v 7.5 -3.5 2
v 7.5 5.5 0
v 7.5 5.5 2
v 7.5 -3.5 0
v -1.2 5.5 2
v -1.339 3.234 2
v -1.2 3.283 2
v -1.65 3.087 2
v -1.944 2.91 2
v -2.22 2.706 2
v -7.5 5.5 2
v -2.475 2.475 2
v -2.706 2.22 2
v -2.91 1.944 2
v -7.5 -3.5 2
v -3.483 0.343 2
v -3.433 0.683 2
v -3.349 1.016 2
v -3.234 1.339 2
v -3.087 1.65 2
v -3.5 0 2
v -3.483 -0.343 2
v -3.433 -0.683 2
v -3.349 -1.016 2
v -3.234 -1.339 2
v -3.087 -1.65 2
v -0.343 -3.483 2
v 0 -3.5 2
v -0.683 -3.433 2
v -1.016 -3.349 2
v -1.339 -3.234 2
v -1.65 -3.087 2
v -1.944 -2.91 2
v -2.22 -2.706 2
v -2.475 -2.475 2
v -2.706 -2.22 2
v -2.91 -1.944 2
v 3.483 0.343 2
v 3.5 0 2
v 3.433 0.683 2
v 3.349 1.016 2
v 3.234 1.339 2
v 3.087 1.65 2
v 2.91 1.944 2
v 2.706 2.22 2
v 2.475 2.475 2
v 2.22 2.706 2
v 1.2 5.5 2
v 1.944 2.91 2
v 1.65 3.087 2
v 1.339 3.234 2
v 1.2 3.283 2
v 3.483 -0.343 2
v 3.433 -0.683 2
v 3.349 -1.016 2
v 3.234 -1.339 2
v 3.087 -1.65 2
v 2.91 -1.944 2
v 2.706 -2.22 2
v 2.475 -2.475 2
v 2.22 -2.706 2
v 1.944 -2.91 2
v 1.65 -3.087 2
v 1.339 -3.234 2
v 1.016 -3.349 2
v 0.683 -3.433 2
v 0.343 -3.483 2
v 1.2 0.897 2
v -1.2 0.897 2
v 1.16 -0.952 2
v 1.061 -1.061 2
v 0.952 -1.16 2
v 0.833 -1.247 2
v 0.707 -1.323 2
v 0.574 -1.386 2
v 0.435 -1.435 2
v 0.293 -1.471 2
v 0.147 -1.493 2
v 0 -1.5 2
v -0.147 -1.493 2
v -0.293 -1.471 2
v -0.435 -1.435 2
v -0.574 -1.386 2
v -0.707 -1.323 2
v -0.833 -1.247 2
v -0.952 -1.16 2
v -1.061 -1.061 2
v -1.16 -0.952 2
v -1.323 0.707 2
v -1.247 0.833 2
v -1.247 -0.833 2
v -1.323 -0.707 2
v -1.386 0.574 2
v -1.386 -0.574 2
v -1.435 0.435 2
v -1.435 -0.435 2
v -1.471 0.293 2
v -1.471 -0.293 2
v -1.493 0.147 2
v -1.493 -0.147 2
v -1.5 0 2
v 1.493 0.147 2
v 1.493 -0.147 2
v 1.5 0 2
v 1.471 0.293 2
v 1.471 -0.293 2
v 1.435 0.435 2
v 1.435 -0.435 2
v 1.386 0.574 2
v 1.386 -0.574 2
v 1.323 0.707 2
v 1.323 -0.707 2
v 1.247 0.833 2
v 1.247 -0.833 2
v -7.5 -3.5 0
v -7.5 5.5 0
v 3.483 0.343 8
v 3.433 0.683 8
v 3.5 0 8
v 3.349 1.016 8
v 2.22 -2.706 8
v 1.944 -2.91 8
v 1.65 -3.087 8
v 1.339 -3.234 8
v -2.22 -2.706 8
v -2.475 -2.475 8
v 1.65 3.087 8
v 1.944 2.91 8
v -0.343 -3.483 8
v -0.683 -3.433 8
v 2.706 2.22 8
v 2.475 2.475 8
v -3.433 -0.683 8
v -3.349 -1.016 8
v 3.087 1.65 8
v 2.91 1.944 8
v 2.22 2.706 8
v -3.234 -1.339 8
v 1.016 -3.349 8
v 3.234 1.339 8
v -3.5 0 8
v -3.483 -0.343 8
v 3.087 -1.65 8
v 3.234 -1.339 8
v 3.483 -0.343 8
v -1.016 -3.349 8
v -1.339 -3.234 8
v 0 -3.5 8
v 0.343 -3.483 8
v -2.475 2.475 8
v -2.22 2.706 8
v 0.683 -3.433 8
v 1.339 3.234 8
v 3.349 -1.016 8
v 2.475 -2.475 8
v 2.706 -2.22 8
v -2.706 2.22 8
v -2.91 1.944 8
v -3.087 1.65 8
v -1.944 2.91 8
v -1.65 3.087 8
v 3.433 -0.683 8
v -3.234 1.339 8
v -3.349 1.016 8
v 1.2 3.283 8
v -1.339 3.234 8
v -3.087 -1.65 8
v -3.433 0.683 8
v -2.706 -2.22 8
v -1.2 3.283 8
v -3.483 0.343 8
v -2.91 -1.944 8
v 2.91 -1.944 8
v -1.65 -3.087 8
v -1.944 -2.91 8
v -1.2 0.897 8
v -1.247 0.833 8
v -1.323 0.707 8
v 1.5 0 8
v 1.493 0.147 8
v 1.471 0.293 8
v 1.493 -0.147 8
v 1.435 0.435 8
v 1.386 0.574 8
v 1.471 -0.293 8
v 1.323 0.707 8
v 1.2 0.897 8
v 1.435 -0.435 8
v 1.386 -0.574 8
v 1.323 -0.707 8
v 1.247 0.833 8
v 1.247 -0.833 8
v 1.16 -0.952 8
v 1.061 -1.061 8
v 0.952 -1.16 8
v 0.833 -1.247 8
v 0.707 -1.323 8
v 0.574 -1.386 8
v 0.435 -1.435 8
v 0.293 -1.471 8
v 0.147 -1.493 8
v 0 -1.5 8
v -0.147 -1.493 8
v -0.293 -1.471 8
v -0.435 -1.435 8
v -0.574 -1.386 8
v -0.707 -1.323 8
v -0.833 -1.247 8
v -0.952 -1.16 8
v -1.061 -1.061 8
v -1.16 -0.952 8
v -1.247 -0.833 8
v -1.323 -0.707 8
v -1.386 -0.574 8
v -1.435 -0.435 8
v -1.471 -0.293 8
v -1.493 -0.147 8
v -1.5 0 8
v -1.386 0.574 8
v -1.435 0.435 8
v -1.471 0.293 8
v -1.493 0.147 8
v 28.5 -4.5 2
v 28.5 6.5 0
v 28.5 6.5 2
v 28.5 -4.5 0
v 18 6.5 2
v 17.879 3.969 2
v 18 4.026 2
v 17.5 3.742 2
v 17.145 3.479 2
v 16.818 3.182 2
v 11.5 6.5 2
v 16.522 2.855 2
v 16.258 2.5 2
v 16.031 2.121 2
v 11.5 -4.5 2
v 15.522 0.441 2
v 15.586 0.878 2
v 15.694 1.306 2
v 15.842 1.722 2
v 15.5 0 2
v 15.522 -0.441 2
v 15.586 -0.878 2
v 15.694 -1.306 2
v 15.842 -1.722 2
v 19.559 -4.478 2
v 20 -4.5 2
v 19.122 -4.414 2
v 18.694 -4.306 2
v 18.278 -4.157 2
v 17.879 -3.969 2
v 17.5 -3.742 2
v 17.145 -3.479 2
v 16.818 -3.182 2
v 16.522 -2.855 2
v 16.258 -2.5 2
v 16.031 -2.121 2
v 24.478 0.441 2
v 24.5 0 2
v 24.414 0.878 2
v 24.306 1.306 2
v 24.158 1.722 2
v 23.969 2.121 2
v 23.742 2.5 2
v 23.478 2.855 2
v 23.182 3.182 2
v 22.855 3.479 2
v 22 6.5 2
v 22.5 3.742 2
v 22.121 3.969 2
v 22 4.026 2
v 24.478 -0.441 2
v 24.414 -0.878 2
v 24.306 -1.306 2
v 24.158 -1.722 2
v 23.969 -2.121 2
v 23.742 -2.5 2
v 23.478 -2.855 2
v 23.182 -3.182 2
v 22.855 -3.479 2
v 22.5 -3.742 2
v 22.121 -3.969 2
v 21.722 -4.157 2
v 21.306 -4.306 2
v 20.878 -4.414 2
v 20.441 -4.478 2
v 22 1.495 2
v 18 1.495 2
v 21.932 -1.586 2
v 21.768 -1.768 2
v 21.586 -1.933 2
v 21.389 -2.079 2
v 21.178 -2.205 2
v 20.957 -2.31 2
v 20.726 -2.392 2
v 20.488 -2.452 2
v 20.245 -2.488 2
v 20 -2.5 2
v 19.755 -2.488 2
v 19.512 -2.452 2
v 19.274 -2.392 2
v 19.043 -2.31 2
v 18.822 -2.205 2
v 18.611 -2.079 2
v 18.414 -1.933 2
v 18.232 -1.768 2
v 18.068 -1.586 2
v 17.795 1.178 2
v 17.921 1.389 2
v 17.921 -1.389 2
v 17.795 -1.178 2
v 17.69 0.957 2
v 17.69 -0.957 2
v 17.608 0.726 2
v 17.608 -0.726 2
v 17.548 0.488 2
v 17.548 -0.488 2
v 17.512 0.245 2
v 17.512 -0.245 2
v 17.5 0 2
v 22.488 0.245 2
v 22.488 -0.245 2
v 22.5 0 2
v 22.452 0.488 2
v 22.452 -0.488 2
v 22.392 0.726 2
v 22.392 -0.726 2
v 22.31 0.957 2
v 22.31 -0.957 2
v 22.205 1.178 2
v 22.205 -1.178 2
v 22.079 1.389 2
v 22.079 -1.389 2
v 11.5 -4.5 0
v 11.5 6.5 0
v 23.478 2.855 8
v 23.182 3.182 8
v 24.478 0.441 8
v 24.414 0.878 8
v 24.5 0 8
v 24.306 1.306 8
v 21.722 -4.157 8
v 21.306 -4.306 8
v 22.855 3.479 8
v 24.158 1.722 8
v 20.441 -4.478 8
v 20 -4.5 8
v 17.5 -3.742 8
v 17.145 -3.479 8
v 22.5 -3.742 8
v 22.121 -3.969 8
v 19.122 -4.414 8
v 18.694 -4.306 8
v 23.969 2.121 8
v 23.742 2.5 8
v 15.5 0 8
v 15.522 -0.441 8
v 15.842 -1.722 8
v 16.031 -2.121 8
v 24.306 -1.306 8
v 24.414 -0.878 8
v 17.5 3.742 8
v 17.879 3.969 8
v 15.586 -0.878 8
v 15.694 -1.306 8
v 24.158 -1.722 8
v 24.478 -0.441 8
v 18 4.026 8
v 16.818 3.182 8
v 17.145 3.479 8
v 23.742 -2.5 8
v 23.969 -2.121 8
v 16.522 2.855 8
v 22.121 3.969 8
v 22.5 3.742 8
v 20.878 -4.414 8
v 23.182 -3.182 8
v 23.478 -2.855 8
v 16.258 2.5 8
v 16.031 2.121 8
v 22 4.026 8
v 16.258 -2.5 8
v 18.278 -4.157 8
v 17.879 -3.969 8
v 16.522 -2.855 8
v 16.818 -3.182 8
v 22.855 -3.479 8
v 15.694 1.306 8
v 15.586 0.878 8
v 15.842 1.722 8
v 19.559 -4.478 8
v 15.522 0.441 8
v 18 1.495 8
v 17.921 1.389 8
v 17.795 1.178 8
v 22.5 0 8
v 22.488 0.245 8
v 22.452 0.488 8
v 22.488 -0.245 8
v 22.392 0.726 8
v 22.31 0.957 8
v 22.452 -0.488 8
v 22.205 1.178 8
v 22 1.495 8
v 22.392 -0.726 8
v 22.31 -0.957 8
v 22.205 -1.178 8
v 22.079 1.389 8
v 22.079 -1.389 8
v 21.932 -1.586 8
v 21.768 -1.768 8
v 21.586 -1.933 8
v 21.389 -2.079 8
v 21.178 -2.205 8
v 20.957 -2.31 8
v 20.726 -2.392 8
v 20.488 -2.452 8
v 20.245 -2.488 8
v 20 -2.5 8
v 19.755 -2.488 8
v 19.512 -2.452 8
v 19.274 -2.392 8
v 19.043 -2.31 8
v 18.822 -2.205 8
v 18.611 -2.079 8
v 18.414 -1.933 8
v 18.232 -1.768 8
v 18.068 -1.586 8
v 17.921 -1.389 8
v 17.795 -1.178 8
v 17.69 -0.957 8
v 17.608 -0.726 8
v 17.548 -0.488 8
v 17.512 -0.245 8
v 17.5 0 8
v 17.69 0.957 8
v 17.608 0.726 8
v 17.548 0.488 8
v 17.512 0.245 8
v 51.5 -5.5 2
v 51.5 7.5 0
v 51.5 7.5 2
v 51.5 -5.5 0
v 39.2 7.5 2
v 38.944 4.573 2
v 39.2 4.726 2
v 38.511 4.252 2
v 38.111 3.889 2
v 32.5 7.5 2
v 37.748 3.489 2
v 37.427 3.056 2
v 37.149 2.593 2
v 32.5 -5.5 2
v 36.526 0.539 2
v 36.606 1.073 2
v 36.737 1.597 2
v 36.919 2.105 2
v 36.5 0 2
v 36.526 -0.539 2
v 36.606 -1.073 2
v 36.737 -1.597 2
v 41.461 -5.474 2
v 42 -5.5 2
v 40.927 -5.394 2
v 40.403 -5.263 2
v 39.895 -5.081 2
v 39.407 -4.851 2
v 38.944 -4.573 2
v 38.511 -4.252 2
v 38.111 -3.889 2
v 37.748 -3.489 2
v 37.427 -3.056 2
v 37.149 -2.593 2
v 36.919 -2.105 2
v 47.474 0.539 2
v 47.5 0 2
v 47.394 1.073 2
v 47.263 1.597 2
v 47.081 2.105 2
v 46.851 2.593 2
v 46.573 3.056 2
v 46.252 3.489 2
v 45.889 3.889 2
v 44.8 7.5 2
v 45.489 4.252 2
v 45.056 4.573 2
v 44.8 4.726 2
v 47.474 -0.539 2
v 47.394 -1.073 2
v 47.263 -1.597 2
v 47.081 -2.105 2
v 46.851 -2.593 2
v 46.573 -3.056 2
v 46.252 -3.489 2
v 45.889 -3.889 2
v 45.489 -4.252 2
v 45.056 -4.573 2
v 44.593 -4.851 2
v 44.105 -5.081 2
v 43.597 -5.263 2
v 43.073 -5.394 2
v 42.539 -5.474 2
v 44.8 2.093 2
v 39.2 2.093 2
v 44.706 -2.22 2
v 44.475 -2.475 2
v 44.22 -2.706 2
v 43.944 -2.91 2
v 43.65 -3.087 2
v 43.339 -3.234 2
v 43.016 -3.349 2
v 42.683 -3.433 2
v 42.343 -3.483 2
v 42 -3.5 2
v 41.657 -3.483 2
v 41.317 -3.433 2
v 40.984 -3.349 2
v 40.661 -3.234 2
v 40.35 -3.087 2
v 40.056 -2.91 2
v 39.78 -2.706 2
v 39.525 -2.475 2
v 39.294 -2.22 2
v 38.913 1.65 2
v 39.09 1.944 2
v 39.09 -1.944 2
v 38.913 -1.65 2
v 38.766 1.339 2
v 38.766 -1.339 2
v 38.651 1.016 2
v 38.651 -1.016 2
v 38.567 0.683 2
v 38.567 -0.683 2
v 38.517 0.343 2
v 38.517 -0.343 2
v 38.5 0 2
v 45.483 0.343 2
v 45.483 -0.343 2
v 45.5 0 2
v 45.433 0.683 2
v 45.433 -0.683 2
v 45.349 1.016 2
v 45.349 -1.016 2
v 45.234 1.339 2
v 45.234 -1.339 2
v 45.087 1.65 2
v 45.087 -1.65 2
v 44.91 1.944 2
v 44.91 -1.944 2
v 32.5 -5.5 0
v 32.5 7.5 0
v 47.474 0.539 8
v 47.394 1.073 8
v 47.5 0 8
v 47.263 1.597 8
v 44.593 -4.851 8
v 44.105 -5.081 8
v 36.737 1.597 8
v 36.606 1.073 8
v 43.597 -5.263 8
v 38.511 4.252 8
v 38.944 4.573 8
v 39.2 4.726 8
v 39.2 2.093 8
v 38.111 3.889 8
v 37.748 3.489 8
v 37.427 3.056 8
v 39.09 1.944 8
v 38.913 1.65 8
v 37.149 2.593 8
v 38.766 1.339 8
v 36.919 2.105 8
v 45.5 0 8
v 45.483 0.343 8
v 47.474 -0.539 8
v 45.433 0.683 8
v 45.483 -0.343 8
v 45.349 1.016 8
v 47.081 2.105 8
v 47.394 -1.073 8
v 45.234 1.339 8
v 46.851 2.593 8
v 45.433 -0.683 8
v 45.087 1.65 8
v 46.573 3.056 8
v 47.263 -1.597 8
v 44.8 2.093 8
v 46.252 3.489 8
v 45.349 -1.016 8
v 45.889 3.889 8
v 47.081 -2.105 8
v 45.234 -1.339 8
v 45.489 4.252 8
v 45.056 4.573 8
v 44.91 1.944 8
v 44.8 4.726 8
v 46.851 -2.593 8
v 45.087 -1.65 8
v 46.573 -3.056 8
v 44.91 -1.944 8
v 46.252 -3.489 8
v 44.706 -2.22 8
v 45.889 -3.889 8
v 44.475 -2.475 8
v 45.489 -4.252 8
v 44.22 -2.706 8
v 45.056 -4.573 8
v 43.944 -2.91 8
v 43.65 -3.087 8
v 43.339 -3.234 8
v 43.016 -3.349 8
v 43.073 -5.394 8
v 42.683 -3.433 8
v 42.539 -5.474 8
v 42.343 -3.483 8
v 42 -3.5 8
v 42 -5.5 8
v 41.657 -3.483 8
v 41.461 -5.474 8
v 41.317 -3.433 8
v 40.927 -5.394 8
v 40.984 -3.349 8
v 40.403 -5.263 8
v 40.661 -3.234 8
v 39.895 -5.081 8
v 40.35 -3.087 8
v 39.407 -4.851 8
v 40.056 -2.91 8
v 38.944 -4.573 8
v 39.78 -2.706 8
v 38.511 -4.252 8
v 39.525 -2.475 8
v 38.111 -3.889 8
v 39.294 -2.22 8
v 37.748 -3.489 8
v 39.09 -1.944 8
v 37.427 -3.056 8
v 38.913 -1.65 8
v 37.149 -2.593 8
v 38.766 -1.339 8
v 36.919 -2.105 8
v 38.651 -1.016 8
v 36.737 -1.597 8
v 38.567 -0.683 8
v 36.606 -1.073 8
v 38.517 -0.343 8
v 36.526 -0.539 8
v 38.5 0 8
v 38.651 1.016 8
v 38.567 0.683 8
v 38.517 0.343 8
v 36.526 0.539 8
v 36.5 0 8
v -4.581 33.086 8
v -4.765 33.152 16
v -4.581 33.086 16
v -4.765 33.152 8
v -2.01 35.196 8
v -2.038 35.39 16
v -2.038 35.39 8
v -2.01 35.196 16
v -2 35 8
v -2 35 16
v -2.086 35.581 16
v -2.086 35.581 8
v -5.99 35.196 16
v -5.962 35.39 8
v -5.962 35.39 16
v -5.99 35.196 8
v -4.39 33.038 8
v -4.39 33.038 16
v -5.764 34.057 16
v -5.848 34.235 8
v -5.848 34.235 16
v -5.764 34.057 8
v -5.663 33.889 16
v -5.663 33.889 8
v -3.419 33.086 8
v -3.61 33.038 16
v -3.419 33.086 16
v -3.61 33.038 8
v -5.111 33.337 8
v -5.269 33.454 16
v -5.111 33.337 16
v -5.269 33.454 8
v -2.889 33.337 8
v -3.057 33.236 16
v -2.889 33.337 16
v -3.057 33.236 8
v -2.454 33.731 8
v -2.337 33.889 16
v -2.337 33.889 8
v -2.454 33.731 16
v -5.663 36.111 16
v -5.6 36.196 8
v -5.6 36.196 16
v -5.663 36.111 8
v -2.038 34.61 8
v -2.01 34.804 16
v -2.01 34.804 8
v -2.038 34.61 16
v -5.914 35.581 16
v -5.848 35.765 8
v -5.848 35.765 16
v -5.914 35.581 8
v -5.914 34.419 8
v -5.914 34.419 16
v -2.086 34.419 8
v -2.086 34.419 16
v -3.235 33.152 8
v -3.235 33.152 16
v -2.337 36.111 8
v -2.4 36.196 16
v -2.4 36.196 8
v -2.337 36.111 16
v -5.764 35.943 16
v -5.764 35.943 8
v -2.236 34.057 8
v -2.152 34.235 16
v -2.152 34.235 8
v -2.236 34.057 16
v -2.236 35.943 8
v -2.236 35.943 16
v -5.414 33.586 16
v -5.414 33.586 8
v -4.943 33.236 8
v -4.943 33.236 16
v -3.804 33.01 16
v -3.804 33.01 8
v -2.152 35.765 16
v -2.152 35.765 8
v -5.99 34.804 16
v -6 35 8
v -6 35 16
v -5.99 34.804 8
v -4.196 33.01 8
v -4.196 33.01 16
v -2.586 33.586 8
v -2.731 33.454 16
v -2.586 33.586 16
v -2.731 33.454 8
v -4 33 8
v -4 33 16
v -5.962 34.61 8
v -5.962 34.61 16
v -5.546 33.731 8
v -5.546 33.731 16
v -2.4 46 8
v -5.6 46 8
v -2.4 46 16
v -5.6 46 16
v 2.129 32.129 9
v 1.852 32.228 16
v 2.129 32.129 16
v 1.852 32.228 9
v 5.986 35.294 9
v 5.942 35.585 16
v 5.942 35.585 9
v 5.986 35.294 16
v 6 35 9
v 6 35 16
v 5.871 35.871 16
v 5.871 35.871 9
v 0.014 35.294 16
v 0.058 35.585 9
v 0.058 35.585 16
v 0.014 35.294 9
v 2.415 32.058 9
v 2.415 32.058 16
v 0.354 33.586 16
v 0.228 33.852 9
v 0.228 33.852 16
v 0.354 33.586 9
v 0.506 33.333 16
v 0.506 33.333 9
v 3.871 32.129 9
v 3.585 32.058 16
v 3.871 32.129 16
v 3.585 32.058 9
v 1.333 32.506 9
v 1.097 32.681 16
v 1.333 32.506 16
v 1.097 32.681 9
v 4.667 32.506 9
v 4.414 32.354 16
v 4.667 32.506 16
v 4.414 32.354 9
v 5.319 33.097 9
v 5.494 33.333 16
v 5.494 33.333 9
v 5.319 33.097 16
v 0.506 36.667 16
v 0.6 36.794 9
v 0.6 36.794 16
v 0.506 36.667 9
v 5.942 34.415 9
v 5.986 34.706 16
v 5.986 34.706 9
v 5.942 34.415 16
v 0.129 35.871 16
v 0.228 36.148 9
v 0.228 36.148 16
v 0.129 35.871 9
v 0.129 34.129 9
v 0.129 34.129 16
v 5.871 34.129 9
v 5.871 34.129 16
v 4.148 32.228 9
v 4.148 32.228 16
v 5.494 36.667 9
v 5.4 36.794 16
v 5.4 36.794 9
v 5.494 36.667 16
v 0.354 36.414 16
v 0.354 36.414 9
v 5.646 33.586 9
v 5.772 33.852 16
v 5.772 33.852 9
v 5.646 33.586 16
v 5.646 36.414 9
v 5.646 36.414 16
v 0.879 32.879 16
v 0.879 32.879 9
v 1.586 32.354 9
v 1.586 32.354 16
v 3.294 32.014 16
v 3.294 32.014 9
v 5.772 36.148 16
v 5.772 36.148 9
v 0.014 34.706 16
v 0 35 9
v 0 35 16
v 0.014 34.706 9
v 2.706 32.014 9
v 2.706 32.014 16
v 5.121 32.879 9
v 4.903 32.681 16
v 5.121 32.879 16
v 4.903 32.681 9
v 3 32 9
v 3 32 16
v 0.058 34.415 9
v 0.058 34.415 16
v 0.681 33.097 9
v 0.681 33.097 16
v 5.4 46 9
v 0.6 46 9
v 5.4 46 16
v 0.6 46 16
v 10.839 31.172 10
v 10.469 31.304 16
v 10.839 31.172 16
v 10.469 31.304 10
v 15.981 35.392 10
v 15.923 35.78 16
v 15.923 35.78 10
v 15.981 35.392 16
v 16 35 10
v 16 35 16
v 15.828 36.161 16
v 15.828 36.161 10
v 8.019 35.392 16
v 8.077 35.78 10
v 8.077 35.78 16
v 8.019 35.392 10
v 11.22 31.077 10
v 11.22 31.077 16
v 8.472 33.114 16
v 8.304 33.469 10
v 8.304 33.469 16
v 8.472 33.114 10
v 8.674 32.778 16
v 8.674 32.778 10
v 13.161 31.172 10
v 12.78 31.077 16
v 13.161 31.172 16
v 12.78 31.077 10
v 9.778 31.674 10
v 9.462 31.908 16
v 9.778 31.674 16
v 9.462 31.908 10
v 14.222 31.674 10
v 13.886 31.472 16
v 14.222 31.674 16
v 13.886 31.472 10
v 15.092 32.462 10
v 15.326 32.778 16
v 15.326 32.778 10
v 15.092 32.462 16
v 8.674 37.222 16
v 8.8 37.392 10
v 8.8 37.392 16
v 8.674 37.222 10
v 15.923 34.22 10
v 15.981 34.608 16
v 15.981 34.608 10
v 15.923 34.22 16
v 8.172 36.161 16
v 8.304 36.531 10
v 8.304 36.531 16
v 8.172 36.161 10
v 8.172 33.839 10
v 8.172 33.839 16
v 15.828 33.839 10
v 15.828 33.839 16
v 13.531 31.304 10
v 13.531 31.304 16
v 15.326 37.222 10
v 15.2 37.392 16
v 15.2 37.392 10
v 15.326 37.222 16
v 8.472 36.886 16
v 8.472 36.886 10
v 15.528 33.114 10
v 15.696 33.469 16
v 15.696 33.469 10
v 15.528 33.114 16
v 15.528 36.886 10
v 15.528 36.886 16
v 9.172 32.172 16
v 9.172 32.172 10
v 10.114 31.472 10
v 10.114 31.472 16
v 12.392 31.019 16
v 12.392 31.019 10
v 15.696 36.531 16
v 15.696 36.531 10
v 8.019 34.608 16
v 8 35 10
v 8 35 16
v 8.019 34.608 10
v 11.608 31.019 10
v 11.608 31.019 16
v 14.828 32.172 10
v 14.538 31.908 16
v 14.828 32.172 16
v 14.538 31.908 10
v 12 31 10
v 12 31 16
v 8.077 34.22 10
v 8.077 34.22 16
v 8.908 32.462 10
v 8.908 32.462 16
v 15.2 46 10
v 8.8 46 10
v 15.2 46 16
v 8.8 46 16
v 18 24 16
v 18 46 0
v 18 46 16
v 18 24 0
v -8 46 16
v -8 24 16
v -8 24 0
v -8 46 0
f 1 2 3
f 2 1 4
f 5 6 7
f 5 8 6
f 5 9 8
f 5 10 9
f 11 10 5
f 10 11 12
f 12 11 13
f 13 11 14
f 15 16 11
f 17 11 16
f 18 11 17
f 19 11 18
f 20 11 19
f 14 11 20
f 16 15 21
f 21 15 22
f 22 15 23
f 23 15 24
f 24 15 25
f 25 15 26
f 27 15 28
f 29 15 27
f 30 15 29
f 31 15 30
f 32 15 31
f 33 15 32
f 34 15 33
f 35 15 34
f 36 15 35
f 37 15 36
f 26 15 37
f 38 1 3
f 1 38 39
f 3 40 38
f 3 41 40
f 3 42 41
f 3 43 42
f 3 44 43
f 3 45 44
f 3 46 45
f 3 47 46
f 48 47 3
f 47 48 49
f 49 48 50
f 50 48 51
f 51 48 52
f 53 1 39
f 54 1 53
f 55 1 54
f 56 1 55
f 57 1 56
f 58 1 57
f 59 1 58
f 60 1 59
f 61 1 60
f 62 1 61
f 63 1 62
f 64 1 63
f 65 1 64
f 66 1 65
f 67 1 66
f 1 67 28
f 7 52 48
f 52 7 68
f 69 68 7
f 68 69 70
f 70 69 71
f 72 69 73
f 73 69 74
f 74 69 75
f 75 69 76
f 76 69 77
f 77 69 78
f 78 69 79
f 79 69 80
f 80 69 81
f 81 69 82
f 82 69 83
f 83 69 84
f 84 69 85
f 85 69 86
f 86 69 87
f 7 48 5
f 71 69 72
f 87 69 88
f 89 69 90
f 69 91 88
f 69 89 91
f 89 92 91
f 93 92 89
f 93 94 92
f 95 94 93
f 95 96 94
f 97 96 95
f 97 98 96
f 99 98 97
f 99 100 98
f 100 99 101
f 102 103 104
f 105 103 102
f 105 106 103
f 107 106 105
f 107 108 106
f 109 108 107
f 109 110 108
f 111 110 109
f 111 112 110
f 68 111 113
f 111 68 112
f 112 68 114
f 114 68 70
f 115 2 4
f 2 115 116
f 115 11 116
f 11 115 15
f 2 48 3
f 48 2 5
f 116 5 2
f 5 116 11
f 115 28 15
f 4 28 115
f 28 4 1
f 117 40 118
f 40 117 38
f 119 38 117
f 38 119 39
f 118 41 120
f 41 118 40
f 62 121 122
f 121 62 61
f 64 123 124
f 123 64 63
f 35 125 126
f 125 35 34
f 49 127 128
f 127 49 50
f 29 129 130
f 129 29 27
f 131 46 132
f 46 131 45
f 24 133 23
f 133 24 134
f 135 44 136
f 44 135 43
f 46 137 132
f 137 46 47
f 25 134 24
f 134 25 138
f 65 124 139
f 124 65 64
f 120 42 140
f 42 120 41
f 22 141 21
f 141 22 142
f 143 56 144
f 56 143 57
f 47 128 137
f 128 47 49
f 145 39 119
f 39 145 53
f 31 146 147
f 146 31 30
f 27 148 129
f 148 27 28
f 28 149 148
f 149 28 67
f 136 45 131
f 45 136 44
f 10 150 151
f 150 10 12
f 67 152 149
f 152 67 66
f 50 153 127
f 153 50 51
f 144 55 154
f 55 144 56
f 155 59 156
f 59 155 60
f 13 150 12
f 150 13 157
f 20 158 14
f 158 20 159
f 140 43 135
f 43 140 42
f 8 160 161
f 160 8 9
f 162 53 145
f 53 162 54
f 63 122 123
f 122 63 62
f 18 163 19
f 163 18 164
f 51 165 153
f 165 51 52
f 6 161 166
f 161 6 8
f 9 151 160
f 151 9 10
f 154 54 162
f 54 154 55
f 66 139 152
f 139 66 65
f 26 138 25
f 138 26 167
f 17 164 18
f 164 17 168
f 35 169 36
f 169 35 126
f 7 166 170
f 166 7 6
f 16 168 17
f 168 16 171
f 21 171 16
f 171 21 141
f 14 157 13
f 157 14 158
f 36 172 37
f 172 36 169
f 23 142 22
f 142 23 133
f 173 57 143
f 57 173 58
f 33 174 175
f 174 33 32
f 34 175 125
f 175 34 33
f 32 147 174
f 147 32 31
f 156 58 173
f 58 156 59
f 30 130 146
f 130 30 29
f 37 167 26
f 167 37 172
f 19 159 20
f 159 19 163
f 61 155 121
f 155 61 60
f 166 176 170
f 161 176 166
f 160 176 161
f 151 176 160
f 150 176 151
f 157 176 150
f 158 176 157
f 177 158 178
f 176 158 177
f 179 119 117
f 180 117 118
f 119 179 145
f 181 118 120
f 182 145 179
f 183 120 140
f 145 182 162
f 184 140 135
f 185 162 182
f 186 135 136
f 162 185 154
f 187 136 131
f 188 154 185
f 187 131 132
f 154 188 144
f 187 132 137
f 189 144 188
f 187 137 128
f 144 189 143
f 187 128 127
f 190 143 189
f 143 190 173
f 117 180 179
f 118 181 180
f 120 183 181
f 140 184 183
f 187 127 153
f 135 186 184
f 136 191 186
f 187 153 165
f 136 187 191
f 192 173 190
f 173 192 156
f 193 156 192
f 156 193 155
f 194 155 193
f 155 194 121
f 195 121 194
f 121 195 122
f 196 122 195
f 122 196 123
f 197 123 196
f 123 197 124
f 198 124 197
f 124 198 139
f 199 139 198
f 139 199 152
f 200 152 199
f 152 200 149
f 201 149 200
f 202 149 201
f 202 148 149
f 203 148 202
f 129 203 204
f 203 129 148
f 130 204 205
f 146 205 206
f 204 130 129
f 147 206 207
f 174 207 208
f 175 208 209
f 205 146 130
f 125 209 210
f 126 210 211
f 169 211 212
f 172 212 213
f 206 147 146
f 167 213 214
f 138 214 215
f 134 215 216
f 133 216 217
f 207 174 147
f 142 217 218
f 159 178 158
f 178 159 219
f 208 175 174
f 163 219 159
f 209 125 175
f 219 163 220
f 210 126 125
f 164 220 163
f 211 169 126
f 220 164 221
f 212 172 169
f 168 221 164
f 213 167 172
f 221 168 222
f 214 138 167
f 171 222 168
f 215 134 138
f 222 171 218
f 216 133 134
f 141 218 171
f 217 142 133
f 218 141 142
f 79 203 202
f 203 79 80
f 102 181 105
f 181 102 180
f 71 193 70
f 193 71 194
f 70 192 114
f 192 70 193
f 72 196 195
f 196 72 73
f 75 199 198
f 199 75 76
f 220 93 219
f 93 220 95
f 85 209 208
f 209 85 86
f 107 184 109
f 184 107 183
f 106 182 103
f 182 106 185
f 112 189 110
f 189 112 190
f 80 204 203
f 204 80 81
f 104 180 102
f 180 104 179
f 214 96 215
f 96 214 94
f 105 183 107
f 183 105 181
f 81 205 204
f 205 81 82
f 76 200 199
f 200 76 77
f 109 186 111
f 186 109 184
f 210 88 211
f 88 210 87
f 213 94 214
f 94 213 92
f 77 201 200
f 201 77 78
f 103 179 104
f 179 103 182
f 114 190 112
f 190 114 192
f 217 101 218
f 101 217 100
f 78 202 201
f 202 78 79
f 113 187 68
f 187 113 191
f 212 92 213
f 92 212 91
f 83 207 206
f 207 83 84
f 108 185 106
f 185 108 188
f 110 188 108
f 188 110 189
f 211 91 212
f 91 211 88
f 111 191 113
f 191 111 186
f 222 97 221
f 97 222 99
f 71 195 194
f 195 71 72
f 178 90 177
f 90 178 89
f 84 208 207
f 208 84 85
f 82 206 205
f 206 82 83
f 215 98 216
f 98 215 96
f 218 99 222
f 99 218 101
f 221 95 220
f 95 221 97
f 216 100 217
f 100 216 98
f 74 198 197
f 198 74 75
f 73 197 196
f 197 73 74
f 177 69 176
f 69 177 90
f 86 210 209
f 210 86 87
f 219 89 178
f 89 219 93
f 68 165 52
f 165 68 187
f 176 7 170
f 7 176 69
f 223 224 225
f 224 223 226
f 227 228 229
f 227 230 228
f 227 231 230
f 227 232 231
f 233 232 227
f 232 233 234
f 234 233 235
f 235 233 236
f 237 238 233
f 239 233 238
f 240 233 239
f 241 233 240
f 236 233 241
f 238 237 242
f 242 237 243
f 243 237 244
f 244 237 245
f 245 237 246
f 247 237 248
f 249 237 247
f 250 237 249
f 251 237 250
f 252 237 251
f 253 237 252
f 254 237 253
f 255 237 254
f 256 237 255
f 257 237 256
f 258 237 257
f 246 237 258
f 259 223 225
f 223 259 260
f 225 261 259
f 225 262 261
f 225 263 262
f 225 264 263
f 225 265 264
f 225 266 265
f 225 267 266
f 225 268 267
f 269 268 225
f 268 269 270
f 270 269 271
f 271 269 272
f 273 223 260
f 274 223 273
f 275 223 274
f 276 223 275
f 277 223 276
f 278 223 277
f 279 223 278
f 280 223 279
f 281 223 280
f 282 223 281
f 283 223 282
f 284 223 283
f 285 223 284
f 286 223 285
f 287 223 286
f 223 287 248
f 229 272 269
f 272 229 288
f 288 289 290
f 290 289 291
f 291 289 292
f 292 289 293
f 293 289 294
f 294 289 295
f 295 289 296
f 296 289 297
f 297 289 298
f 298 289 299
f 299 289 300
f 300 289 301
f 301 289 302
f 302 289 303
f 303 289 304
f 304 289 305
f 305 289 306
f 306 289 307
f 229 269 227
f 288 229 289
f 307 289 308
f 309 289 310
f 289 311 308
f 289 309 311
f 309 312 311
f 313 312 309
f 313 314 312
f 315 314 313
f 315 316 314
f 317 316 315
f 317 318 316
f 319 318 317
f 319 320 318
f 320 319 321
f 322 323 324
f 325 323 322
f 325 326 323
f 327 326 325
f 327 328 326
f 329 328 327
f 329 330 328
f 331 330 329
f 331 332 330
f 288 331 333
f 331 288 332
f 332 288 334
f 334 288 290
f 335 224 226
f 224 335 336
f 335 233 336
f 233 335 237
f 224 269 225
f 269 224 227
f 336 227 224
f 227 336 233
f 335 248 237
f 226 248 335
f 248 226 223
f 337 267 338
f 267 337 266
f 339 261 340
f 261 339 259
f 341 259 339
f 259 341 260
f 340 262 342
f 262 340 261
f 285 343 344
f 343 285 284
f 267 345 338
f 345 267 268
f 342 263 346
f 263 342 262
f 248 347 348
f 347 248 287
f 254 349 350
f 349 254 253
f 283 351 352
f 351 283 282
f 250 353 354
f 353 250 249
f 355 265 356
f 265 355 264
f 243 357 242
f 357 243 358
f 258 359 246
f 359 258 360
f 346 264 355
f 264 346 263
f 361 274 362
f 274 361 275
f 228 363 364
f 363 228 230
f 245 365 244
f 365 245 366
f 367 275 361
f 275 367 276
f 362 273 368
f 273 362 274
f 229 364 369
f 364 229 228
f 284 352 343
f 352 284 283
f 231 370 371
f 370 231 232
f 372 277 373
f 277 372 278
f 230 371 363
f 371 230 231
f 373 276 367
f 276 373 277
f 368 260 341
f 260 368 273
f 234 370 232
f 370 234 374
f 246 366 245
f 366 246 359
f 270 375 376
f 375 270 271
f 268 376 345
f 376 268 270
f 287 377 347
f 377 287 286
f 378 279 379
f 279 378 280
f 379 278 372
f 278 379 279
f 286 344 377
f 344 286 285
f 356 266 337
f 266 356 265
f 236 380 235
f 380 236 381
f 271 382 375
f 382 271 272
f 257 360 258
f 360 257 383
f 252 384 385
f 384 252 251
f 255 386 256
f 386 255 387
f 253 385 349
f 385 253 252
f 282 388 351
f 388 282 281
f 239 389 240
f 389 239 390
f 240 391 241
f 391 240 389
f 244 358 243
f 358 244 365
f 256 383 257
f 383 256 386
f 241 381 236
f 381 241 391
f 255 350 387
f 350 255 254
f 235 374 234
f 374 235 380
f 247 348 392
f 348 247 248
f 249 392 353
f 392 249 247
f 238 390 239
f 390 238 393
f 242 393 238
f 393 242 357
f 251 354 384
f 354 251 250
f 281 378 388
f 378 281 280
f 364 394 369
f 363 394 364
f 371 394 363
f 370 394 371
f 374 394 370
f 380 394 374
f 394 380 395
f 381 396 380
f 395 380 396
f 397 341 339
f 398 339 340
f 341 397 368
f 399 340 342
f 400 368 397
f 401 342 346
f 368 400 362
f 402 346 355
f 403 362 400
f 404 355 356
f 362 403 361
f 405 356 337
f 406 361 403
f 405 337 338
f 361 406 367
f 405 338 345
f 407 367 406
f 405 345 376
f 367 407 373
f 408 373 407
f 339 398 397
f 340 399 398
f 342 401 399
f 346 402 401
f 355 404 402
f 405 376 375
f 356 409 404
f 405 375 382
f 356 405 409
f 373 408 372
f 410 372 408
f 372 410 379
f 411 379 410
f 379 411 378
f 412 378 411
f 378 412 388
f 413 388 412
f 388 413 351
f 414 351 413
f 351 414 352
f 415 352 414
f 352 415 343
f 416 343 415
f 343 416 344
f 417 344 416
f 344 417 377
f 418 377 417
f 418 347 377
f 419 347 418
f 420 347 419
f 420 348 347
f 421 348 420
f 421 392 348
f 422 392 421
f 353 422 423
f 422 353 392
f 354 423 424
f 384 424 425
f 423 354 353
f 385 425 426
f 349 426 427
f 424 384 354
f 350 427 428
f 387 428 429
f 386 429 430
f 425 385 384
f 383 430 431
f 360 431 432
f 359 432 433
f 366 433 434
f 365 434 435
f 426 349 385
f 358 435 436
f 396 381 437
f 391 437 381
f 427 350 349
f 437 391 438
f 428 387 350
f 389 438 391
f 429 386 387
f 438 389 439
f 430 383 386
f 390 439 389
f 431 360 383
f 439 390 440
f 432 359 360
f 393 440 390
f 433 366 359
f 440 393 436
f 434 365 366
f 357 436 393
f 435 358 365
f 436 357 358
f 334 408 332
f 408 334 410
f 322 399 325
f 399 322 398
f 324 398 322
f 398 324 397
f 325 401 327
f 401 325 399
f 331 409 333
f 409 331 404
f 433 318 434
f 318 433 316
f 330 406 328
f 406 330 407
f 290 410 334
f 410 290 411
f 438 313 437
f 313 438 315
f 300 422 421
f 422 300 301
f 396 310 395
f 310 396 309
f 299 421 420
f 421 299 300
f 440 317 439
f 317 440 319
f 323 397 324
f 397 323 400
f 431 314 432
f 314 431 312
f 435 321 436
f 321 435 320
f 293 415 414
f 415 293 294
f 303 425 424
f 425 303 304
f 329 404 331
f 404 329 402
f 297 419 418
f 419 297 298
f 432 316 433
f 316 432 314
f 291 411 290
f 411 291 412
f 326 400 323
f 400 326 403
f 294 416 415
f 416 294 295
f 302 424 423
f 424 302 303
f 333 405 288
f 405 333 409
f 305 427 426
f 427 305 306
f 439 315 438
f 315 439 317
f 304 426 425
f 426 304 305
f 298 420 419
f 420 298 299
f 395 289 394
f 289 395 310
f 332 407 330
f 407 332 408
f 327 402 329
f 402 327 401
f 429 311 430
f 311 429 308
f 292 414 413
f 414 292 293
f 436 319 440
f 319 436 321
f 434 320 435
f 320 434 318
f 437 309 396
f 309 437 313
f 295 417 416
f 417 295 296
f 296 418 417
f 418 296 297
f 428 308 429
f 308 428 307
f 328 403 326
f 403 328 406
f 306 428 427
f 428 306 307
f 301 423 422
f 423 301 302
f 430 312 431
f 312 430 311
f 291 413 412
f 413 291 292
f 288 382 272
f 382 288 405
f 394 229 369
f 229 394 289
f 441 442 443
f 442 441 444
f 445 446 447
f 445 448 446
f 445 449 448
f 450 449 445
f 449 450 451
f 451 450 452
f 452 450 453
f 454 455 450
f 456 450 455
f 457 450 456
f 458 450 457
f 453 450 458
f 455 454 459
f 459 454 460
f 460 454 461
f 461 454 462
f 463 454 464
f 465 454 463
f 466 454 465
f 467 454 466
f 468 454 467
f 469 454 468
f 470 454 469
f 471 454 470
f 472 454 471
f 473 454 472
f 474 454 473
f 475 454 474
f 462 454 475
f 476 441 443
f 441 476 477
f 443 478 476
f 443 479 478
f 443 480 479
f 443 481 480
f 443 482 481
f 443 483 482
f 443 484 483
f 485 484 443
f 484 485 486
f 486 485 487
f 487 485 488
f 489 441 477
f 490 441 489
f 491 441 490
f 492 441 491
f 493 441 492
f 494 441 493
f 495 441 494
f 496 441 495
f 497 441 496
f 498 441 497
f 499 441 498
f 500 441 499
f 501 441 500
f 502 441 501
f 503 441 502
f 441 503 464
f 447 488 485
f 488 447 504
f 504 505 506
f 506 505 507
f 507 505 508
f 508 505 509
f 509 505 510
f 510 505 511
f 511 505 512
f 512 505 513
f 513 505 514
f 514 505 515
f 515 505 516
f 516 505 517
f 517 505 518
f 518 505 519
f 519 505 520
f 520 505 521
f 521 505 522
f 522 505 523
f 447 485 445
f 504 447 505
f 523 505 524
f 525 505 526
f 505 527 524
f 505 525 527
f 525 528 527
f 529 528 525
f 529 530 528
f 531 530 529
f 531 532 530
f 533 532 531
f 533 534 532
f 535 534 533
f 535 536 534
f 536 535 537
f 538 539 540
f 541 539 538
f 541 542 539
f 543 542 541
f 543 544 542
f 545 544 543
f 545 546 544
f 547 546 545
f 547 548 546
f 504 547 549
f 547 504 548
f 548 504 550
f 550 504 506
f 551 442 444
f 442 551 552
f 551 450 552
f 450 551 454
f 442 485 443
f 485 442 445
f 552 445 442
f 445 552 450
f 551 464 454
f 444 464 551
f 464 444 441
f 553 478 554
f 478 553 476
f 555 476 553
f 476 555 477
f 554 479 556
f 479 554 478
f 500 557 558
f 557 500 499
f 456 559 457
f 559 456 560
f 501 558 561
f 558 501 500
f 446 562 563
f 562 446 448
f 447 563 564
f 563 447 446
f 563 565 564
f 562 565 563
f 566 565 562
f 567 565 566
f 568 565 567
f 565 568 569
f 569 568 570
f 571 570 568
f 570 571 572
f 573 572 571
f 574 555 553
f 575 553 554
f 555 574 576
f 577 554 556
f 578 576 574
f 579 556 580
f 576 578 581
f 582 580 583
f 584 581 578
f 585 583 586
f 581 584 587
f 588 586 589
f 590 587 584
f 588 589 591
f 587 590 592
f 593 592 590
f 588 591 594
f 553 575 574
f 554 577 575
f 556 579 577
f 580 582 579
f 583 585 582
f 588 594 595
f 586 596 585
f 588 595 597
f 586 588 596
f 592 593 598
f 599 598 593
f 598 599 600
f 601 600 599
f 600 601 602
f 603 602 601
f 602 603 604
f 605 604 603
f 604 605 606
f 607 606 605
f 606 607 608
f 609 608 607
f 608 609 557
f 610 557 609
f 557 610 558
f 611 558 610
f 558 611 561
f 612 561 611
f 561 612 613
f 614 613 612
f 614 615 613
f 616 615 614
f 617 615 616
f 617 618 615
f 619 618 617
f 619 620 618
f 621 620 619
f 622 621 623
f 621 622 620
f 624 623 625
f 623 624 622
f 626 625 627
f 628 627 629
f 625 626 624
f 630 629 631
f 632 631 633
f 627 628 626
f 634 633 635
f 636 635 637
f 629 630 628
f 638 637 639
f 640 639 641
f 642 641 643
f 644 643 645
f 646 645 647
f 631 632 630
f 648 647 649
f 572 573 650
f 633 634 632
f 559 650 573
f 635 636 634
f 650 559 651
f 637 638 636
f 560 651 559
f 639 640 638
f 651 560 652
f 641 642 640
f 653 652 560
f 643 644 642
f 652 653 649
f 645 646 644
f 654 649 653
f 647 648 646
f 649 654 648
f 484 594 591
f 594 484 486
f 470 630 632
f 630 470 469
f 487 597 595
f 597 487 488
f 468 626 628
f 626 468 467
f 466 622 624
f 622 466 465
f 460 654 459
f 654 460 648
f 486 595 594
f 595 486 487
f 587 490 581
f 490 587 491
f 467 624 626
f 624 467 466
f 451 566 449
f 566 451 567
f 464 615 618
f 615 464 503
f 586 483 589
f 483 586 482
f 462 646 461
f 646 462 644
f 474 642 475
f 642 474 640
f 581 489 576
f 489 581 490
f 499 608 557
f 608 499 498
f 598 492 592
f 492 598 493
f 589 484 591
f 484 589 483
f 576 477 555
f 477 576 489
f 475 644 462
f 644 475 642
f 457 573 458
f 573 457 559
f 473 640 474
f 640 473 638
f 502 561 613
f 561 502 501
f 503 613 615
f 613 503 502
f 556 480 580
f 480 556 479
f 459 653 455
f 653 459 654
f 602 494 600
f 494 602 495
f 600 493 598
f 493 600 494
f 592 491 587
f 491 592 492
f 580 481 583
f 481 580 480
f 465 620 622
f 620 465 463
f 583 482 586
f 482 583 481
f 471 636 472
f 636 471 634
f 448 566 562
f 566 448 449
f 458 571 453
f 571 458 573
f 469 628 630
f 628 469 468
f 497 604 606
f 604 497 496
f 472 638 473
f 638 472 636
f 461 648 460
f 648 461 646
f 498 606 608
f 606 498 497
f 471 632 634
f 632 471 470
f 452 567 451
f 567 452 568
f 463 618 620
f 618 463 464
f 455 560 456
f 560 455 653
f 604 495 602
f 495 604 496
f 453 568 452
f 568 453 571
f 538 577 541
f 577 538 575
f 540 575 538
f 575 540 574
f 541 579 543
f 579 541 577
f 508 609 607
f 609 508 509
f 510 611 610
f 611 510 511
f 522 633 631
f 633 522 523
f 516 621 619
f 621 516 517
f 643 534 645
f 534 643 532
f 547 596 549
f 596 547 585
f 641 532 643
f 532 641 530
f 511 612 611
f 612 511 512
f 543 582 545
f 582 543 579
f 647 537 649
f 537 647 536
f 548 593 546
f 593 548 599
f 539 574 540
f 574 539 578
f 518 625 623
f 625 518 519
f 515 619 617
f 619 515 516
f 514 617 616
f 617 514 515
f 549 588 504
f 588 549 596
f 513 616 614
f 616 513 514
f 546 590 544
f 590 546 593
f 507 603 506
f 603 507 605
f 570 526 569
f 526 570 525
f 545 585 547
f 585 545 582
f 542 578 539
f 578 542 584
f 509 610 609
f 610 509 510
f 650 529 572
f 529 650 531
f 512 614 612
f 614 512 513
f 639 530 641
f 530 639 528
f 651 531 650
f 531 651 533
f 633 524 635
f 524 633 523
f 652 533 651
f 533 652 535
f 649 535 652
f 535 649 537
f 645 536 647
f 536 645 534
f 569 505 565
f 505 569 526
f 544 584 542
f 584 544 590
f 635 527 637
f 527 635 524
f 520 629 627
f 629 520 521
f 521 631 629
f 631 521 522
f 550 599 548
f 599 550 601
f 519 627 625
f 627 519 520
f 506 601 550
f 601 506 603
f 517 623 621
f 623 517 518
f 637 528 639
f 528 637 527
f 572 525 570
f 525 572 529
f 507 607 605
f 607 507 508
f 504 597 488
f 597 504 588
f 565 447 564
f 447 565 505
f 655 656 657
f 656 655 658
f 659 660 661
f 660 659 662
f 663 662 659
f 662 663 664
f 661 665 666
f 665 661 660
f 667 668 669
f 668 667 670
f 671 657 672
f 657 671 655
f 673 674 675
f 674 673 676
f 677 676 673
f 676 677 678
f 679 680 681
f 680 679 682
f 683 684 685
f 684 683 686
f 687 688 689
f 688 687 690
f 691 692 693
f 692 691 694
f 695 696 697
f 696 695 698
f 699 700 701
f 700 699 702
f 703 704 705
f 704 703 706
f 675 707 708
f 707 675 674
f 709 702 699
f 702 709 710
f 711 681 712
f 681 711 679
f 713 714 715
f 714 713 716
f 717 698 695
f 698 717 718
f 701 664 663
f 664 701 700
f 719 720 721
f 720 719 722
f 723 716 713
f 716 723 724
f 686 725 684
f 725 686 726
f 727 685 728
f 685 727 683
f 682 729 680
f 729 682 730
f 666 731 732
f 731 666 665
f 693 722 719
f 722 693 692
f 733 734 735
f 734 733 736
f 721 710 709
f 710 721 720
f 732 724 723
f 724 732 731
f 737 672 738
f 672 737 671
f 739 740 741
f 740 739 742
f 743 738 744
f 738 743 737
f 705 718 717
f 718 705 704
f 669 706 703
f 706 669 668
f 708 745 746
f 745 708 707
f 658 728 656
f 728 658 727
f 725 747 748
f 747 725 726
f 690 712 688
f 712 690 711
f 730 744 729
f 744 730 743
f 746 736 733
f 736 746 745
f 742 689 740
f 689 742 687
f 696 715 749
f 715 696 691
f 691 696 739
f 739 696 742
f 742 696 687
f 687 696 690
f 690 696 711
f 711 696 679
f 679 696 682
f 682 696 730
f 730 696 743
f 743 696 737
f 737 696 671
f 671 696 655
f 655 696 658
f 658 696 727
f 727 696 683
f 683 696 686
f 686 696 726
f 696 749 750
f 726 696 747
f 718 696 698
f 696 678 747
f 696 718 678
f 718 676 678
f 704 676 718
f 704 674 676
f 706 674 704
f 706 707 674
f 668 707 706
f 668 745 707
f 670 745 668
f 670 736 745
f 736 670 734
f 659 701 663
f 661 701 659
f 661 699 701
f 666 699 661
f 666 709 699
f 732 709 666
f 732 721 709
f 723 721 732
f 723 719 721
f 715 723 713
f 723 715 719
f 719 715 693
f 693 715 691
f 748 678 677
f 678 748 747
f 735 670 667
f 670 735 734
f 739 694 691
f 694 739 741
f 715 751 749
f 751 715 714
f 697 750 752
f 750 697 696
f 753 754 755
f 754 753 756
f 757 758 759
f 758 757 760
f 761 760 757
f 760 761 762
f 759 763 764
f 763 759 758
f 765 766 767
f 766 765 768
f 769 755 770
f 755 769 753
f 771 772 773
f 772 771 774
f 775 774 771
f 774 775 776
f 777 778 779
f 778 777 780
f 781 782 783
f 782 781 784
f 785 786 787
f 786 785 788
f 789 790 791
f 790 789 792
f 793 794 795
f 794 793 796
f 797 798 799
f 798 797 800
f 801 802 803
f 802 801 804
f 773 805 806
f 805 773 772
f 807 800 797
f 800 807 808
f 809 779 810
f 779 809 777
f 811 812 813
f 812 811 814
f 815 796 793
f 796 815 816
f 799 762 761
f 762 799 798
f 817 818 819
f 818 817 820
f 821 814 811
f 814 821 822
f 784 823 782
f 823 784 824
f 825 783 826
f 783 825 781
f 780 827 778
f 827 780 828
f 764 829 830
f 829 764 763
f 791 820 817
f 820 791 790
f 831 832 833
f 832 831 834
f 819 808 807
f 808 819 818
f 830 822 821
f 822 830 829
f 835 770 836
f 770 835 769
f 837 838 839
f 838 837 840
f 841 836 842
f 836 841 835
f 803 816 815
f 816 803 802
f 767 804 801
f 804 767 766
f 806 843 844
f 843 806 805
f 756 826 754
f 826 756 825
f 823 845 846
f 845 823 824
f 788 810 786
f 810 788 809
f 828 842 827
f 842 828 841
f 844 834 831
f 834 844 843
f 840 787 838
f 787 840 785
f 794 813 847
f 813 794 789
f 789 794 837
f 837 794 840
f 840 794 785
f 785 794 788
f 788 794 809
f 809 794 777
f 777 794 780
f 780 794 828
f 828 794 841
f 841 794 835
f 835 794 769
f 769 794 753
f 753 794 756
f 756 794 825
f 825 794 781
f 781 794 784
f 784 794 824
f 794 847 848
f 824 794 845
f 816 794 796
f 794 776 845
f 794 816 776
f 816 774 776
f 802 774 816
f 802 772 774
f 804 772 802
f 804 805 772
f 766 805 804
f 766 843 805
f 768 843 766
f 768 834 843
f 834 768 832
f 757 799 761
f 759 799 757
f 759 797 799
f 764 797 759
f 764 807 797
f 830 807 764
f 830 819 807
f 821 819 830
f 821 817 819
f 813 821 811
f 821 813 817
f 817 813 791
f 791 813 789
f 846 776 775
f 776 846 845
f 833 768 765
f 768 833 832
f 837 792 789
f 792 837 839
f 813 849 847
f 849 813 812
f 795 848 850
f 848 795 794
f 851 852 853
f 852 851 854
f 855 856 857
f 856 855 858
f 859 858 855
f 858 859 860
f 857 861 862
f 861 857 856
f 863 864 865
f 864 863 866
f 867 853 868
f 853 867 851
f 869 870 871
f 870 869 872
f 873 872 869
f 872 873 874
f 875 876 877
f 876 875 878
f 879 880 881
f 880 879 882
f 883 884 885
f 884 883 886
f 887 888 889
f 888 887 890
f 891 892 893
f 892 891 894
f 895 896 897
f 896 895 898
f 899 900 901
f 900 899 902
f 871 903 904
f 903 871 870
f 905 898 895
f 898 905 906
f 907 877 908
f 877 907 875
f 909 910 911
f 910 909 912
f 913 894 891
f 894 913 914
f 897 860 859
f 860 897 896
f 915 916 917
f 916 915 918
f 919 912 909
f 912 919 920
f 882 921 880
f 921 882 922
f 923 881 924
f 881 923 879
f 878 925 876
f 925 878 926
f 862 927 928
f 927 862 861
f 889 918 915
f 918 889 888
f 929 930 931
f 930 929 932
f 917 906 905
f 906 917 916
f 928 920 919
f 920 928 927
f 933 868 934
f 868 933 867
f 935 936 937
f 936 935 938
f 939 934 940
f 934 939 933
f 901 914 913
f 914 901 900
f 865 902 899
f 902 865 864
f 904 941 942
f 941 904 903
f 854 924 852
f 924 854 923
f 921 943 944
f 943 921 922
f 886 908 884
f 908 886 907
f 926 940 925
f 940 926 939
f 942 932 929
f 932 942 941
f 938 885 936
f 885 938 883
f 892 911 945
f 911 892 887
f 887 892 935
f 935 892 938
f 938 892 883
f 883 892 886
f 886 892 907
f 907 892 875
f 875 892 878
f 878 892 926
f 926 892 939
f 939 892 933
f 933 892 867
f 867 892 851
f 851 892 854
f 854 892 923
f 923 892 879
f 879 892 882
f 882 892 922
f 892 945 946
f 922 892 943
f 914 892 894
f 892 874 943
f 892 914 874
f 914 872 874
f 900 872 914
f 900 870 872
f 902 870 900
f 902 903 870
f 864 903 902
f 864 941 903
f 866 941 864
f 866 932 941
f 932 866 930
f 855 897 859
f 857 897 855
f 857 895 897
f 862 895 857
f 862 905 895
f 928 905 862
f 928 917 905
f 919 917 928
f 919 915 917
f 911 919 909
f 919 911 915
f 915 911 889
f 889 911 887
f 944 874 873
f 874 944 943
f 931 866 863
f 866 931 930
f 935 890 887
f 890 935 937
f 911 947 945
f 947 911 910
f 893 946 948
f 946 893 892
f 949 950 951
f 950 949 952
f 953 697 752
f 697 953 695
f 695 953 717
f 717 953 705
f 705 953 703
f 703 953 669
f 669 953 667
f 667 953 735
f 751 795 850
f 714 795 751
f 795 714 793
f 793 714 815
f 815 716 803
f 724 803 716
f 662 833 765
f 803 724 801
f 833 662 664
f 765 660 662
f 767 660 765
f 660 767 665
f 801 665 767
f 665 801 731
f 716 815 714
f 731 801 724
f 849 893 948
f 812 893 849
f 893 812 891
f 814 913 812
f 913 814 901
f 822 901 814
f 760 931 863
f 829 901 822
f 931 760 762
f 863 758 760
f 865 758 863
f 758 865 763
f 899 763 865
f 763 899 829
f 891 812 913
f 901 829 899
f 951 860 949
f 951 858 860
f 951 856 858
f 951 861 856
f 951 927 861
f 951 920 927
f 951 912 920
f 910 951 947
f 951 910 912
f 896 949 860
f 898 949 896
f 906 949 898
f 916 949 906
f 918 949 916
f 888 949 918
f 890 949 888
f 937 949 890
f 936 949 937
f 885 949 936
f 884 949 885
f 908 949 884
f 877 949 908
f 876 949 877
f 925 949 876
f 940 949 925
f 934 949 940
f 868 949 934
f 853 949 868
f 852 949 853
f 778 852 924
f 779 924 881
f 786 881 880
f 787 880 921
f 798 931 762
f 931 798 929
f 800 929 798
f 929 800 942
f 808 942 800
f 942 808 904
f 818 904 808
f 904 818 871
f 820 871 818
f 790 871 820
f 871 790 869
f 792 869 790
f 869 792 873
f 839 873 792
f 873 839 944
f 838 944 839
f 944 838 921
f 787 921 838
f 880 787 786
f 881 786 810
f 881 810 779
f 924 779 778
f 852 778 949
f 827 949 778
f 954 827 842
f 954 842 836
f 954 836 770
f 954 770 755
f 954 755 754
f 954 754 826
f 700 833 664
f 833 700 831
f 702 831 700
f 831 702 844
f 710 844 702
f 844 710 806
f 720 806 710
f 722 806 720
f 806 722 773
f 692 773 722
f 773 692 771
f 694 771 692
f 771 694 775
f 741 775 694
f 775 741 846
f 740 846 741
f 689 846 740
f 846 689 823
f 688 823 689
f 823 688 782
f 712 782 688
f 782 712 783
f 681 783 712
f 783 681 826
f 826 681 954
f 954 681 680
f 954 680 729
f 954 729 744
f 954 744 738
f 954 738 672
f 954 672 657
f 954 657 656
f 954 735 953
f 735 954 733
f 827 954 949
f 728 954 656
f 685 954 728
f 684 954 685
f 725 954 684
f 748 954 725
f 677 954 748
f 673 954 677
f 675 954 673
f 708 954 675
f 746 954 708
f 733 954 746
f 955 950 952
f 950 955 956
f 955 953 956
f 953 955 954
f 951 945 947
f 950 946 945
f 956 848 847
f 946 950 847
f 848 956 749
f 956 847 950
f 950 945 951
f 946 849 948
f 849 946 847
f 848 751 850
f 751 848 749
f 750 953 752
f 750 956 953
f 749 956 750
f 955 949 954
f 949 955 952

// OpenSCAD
// Adhesive cable clip set: 3, 5, 7 mm single clips + a 3-slot desk organizer. Print flat, no supports.
$fn = 64;
wall = 2; h = 8; base = 2; gap_ratio = 0.8;

module clip(d, extra_w = 0) {
    od = d + 2 * wall;
    difference() {
        union() {
            translate([-od / 2 - 4, -od / 2, 0]) cube([od + 8, od + 2, base]);       // sticker pad
            translate([0, 0, 0]) cylinder(d = od, h = h);
        }
        translate([0, 0, base]) cylinder(d = d, h = h);
        // opening on top, narrower than the cable so it snaps
        translate([-d * gap_ratio / 2, 0, base]) cube([d * gap_ratio, od, h]);
    }
}

module organizer(ds = [4, 6, 8]) {
    total = sum_d(ds) + (len(ds) + 1) * wall;
    difference() {
        translate([0, 0, 0]) cube([total, 22, 16]);
        x = wall;
        for (i = [0 : len(ds) - 1]) {
            xo = wall * (i + 1) + sum_to(ds, i) + ds[i] / 2;
            translate([xo, 11, 6 + ds[i] / 2]) cylinder(d = ds[i], h = 20);
            translate([xo - ds[i] * gap_ratio / 2, 11, 6 + ds[i] / 2]) cube([ds[i] * gap_ratio, 20, 20]);
        }
    }
}
function sum_d(v, i = 0) = i >= len(v) ? 0 : v[i] + sum_d(v, i + 1);
function sum_to(v, n, i = 0) = i >= n ? 0 : v[i] + sum_to(v, n, i + 1);

// layout
translate([0, 0, 0])   clip(3);
translate([20, 0, 0])  clip(5);
translate([42, 0, 0])  clip(7);
translate([-8, 24, 0]) organizer([4, 6, 8]);
